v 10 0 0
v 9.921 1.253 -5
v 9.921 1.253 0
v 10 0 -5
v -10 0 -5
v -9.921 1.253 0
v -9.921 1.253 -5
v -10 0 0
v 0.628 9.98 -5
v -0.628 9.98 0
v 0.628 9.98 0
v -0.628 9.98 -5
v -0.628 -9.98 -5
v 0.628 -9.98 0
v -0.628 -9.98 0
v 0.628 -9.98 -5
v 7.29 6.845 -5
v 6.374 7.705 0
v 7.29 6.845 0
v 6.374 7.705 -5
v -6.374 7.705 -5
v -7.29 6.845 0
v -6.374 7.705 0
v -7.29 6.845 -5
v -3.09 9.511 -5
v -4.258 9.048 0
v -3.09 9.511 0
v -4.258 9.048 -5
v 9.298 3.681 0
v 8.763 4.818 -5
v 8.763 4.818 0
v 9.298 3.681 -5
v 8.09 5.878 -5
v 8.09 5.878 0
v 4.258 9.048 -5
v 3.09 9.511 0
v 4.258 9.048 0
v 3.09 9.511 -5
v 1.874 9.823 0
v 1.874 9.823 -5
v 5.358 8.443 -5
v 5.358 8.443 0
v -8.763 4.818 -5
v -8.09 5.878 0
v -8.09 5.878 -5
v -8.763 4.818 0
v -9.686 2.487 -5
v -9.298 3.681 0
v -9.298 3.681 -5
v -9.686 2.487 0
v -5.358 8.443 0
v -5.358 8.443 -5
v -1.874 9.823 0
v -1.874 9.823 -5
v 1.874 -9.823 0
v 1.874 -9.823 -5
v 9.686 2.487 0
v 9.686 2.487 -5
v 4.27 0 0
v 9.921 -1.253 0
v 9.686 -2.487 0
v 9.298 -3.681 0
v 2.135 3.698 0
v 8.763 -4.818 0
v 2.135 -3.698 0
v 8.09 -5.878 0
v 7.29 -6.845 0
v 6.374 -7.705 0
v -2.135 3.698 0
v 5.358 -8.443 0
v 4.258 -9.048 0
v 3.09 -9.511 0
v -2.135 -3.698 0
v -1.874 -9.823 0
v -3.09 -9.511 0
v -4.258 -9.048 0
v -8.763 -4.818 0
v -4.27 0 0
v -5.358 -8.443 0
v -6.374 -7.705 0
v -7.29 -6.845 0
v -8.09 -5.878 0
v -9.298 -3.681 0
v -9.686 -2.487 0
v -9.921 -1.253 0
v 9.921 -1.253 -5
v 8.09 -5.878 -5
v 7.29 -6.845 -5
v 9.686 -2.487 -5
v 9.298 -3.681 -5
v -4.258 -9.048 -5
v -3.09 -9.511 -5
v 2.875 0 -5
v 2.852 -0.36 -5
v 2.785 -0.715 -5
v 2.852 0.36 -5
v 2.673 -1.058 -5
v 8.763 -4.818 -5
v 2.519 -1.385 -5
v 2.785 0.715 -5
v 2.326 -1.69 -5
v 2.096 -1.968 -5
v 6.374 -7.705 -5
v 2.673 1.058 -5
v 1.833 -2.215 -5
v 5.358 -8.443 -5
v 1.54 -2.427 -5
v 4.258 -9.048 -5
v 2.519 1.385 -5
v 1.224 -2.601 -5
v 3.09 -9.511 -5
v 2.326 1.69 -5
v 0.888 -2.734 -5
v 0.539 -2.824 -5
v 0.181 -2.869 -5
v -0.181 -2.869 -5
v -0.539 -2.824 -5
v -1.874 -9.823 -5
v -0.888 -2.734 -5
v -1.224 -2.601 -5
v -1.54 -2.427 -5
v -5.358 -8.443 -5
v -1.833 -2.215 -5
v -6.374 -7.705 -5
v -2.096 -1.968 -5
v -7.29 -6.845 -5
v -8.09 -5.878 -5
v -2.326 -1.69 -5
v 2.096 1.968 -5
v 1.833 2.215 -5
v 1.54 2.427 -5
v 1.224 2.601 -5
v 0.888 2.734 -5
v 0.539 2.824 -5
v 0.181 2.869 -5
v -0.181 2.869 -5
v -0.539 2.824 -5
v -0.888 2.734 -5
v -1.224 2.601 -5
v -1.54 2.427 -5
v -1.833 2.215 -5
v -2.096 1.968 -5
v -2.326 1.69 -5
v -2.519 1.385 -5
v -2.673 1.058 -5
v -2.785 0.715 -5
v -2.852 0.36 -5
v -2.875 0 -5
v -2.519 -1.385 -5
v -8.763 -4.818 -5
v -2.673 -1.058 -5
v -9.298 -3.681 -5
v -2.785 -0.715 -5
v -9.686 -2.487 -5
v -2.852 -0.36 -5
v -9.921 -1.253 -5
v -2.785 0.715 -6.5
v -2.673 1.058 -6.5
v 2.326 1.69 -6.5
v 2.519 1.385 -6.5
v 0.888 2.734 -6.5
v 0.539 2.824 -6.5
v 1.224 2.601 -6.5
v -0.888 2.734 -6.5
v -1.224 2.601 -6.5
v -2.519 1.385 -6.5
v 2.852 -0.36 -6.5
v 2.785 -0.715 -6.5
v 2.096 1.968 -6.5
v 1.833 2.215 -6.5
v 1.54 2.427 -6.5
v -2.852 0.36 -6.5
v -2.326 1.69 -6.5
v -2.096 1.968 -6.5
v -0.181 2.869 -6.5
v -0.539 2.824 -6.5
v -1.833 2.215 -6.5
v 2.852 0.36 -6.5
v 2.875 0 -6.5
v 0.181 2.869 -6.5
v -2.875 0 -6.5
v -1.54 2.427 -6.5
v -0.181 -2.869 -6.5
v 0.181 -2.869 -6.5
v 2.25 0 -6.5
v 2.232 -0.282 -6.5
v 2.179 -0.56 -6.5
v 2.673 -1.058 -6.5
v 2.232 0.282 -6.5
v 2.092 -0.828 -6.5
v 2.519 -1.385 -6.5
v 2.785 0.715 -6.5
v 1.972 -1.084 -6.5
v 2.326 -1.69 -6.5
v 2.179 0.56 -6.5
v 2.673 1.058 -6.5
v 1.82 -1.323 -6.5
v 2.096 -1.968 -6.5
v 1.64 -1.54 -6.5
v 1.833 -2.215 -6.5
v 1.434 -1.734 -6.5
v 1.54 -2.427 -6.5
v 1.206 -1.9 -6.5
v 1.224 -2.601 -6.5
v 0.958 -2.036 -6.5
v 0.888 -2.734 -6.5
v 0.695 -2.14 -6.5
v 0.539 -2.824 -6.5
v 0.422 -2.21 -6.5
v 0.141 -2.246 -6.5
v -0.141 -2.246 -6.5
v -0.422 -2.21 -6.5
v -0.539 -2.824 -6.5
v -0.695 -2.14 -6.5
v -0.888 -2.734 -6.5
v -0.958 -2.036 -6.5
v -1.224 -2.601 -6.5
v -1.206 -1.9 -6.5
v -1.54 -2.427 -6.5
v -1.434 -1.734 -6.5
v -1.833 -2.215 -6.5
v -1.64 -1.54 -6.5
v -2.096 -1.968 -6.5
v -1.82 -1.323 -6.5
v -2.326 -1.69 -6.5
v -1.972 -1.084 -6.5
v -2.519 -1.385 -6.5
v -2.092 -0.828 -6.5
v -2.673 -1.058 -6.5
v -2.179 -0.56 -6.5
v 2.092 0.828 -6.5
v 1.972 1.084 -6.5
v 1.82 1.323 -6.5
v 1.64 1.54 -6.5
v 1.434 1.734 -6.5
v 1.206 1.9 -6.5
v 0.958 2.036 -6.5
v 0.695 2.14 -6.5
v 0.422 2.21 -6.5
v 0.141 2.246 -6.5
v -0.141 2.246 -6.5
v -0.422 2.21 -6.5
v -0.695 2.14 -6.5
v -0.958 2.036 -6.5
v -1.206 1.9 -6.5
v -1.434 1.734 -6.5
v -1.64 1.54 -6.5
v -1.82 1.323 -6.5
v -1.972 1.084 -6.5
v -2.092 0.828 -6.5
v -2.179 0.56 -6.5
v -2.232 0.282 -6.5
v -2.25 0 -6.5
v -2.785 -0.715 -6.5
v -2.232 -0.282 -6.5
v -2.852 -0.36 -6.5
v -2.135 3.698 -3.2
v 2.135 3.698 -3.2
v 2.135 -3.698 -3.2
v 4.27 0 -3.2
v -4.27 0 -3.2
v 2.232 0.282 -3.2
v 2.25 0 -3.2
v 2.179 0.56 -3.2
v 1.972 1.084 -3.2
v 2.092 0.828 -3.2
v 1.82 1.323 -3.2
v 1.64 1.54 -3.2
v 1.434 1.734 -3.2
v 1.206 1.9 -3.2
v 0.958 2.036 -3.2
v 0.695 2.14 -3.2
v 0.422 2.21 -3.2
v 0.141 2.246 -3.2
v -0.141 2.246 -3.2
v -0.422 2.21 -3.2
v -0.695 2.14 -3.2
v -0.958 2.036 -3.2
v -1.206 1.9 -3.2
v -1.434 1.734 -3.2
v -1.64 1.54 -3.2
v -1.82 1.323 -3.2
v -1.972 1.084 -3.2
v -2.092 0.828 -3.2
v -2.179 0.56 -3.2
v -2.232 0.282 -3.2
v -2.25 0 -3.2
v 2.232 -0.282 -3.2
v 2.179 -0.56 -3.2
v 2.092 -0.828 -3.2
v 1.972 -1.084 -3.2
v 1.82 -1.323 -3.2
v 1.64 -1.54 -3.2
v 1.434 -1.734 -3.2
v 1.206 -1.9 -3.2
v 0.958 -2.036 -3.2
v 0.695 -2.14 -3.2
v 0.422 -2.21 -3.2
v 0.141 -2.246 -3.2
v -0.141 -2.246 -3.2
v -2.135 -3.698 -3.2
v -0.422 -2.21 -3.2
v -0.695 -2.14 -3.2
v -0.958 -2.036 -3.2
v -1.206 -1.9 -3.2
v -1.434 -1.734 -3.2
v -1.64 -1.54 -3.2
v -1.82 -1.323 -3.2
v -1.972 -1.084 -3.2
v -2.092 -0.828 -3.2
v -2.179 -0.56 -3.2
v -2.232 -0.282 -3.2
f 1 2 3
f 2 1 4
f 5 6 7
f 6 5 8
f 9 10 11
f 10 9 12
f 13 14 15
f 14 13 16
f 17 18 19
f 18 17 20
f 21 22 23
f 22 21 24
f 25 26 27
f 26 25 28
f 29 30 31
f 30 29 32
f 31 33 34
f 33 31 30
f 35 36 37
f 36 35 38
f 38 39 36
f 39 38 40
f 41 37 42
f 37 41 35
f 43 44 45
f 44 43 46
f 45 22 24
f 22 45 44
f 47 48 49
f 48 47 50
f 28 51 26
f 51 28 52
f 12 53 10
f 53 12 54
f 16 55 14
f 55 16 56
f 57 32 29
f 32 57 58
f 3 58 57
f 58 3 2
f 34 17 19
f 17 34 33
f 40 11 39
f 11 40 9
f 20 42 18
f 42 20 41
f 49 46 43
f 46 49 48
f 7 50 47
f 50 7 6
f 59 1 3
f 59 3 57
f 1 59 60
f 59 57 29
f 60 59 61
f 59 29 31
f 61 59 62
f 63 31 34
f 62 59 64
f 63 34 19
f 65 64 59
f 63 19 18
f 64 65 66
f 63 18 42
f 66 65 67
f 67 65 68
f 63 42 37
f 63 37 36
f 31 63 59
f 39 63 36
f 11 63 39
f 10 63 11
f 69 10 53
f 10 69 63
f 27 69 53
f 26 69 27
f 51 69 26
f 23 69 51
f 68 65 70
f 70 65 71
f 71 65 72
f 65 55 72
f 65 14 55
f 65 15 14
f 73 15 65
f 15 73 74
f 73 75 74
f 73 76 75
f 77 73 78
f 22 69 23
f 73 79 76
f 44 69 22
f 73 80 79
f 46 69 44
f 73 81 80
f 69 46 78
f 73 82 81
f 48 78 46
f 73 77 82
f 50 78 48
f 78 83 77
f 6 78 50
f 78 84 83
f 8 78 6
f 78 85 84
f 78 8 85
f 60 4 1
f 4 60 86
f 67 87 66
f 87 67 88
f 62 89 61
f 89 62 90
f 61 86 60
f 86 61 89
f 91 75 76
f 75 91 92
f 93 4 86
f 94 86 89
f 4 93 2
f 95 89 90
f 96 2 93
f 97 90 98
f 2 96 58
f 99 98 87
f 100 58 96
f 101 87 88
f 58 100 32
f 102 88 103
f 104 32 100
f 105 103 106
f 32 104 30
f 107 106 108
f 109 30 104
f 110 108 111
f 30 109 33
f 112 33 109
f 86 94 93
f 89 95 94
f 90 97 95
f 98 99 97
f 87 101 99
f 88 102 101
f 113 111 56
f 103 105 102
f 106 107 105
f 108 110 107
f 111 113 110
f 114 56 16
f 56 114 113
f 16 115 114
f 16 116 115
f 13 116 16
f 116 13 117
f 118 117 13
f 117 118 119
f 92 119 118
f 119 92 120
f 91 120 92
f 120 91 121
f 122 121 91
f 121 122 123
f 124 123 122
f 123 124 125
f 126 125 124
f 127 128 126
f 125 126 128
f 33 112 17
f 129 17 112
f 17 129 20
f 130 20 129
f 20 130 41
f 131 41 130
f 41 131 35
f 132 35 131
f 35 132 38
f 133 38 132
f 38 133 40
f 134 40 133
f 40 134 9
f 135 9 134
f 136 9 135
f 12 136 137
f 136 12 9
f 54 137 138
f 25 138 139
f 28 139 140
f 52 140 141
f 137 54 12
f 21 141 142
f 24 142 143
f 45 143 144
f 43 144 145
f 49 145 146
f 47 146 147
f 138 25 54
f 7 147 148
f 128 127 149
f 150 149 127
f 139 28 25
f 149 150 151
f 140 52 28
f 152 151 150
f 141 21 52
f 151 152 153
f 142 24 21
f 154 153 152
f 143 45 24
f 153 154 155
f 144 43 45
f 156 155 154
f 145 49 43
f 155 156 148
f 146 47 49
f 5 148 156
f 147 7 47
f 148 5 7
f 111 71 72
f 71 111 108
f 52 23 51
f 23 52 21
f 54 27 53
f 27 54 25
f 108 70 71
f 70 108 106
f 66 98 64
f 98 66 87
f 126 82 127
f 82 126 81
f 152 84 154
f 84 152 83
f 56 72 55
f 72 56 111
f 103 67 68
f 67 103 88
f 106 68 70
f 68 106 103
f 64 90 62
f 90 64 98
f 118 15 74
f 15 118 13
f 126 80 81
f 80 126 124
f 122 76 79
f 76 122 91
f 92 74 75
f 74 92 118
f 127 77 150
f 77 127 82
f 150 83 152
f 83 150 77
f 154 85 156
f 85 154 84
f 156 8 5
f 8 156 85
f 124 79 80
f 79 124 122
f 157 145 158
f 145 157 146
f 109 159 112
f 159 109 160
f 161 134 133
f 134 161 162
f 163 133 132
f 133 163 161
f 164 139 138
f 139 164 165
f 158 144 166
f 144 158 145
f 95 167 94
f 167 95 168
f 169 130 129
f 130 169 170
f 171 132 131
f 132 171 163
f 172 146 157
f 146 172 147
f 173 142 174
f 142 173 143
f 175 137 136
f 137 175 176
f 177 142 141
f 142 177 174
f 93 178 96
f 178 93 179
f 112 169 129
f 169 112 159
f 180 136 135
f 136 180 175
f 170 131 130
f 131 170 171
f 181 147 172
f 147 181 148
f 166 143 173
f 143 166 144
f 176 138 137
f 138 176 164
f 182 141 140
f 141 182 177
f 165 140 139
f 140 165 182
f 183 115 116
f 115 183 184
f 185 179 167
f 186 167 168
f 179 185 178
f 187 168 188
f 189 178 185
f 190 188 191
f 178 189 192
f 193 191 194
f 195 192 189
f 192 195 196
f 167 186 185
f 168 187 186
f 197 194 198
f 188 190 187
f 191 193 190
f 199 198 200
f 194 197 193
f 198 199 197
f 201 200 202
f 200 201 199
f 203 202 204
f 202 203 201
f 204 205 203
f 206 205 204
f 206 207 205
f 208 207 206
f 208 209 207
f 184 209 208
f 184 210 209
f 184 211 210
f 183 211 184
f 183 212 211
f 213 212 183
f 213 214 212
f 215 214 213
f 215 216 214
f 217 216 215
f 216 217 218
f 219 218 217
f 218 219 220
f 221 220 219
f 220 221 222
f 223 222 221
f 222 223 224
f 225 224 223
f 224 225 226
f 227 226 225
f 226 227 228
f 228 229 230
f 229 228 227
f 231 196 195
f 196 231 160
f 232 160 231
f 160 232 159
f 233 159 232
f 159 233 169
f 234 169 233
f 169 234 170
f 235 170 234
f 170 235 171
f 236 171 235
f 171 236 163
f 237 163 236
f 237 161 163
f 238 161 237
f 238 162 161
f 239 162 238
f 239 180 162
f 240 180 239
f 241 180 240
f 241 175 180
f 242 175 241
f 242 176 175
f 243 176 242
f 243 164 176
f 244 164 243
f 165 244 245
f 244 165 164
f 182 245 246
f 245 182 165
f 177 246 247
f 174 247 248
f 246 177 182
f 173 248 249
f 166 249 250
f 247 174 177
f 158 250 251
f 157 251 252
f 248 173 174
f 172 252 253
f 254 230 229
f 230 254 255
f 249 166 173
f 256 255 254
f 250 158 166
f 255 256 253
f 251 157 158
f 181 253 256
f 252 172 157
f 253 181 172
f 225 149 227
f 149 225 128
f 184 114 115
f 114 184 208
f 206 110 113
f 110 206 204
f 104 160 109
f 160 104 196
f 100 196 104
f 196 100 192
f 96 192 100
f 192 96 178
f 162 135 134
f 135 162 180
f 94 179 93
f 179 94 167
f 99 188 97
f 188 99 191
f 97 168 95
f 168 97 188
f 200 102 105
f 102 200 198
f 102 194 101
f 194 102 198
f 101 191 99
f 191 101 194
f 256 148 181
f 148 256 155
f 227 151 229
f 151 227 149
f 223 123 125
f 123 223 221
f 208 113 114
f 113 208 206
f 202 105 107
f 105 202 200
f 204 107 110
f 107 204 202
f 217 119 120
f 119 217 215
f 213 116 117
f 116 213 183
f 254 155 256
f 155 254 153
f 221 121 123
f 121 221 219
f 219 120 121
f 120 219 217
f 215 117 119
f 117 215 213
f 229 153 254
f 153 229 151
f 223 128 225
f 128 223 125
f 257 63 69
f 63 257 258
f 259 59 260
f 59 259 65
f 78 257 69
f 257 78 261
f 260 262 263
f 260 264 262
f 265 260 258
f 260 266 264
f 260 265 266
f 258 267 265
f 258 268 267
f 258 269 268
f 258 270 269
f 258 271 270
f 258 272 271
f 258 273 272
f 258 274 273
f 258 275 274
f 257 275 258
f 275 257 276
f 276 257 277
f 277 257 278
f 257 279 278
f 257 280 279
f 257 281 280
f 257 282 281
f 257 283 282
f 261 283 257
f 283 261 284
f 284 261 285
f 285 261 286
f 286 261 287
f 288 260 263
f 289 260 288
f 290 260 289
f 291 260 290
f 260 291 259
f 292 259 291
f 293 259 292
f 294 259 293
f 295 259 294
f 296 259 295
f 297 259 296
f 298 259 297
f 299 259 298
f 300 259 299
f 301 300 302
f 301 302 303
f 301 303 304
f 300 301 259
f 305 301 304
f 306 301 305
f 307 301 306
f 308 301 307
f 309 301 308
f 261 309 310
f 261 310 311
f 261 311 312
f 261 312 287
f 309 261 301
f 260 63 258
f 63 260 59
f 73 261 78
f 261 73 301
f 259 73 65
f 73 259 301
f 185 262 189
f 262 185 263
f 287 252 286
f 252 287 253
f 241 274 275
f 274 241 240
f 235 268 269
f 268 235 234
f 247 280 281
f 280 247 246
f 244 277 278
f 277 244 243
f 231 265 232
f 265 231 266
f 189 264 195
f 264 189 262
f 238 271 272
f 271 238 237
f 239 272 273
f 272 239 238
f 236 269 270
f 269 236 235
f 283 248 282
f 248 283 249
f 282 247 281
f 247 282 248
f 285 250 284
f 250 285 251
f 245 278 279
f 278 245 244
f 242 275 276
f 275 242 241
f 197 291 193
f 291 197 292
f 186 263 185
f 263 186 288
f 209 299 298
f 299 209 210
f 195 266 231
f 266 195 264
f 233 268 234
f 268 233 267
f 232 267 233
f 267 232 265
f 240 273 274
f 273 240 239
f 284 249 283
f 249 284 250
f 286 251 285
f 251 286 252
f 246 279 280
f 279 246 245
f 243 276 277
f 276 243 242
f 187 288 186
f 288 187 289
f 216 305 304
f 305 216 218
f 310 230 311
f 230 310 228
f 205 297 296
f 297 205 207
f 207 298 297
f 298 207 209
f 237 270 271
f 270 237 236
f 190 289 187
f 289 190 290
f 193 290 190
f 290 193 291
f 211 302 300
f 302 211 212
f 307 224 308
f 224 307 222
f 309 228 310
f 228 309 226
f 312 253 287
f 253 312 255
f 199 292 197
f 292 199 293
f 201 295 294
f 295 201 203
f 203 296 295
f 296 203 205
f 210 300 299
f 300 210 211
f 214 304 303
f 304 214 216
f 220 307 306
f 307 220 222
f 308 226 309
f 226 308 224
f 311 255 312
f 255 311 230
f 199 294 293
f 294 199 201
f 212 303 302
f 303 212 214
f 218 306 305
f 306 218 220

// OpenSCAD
$fn = 50;


difference() {
	union() {
		translate(v = [0, 0, -5.0000000000]) {
			cylinder(h = 5.0000000000, r = 10.0000000000);
		}
		#translate(v = [0, 0, -6.5000000000]) {
			cylinder(h = 6.5000000000, r = 2.8750000000);
		}
	}
	union() {
		translate(v = [0, 0, 0]) {
			rotate(a = [0, 0, 0]) {
				difference() {
					union() {
						translate(v = [0, 0, -3.2000000000]) {
							linear_extrude(height = 3.2000000000) {
								polygon(points = [[4.2698000000, 0.0000000000], [2.1349000000, 3.6977552691], [-2.1349000000, 3.6977552691], [-4.2698000000, 0.0000000000], [-2.1349000000, -3.6977552691], [2.1349000000, -3.6977552691]]);
							}
						}
					}
					union();
				}
			}
		}
		#translate(v = [0, 0, -100.0000000000]) {
			cylinder(h = 200, r = 2.2500000000);
		}
	}
}
